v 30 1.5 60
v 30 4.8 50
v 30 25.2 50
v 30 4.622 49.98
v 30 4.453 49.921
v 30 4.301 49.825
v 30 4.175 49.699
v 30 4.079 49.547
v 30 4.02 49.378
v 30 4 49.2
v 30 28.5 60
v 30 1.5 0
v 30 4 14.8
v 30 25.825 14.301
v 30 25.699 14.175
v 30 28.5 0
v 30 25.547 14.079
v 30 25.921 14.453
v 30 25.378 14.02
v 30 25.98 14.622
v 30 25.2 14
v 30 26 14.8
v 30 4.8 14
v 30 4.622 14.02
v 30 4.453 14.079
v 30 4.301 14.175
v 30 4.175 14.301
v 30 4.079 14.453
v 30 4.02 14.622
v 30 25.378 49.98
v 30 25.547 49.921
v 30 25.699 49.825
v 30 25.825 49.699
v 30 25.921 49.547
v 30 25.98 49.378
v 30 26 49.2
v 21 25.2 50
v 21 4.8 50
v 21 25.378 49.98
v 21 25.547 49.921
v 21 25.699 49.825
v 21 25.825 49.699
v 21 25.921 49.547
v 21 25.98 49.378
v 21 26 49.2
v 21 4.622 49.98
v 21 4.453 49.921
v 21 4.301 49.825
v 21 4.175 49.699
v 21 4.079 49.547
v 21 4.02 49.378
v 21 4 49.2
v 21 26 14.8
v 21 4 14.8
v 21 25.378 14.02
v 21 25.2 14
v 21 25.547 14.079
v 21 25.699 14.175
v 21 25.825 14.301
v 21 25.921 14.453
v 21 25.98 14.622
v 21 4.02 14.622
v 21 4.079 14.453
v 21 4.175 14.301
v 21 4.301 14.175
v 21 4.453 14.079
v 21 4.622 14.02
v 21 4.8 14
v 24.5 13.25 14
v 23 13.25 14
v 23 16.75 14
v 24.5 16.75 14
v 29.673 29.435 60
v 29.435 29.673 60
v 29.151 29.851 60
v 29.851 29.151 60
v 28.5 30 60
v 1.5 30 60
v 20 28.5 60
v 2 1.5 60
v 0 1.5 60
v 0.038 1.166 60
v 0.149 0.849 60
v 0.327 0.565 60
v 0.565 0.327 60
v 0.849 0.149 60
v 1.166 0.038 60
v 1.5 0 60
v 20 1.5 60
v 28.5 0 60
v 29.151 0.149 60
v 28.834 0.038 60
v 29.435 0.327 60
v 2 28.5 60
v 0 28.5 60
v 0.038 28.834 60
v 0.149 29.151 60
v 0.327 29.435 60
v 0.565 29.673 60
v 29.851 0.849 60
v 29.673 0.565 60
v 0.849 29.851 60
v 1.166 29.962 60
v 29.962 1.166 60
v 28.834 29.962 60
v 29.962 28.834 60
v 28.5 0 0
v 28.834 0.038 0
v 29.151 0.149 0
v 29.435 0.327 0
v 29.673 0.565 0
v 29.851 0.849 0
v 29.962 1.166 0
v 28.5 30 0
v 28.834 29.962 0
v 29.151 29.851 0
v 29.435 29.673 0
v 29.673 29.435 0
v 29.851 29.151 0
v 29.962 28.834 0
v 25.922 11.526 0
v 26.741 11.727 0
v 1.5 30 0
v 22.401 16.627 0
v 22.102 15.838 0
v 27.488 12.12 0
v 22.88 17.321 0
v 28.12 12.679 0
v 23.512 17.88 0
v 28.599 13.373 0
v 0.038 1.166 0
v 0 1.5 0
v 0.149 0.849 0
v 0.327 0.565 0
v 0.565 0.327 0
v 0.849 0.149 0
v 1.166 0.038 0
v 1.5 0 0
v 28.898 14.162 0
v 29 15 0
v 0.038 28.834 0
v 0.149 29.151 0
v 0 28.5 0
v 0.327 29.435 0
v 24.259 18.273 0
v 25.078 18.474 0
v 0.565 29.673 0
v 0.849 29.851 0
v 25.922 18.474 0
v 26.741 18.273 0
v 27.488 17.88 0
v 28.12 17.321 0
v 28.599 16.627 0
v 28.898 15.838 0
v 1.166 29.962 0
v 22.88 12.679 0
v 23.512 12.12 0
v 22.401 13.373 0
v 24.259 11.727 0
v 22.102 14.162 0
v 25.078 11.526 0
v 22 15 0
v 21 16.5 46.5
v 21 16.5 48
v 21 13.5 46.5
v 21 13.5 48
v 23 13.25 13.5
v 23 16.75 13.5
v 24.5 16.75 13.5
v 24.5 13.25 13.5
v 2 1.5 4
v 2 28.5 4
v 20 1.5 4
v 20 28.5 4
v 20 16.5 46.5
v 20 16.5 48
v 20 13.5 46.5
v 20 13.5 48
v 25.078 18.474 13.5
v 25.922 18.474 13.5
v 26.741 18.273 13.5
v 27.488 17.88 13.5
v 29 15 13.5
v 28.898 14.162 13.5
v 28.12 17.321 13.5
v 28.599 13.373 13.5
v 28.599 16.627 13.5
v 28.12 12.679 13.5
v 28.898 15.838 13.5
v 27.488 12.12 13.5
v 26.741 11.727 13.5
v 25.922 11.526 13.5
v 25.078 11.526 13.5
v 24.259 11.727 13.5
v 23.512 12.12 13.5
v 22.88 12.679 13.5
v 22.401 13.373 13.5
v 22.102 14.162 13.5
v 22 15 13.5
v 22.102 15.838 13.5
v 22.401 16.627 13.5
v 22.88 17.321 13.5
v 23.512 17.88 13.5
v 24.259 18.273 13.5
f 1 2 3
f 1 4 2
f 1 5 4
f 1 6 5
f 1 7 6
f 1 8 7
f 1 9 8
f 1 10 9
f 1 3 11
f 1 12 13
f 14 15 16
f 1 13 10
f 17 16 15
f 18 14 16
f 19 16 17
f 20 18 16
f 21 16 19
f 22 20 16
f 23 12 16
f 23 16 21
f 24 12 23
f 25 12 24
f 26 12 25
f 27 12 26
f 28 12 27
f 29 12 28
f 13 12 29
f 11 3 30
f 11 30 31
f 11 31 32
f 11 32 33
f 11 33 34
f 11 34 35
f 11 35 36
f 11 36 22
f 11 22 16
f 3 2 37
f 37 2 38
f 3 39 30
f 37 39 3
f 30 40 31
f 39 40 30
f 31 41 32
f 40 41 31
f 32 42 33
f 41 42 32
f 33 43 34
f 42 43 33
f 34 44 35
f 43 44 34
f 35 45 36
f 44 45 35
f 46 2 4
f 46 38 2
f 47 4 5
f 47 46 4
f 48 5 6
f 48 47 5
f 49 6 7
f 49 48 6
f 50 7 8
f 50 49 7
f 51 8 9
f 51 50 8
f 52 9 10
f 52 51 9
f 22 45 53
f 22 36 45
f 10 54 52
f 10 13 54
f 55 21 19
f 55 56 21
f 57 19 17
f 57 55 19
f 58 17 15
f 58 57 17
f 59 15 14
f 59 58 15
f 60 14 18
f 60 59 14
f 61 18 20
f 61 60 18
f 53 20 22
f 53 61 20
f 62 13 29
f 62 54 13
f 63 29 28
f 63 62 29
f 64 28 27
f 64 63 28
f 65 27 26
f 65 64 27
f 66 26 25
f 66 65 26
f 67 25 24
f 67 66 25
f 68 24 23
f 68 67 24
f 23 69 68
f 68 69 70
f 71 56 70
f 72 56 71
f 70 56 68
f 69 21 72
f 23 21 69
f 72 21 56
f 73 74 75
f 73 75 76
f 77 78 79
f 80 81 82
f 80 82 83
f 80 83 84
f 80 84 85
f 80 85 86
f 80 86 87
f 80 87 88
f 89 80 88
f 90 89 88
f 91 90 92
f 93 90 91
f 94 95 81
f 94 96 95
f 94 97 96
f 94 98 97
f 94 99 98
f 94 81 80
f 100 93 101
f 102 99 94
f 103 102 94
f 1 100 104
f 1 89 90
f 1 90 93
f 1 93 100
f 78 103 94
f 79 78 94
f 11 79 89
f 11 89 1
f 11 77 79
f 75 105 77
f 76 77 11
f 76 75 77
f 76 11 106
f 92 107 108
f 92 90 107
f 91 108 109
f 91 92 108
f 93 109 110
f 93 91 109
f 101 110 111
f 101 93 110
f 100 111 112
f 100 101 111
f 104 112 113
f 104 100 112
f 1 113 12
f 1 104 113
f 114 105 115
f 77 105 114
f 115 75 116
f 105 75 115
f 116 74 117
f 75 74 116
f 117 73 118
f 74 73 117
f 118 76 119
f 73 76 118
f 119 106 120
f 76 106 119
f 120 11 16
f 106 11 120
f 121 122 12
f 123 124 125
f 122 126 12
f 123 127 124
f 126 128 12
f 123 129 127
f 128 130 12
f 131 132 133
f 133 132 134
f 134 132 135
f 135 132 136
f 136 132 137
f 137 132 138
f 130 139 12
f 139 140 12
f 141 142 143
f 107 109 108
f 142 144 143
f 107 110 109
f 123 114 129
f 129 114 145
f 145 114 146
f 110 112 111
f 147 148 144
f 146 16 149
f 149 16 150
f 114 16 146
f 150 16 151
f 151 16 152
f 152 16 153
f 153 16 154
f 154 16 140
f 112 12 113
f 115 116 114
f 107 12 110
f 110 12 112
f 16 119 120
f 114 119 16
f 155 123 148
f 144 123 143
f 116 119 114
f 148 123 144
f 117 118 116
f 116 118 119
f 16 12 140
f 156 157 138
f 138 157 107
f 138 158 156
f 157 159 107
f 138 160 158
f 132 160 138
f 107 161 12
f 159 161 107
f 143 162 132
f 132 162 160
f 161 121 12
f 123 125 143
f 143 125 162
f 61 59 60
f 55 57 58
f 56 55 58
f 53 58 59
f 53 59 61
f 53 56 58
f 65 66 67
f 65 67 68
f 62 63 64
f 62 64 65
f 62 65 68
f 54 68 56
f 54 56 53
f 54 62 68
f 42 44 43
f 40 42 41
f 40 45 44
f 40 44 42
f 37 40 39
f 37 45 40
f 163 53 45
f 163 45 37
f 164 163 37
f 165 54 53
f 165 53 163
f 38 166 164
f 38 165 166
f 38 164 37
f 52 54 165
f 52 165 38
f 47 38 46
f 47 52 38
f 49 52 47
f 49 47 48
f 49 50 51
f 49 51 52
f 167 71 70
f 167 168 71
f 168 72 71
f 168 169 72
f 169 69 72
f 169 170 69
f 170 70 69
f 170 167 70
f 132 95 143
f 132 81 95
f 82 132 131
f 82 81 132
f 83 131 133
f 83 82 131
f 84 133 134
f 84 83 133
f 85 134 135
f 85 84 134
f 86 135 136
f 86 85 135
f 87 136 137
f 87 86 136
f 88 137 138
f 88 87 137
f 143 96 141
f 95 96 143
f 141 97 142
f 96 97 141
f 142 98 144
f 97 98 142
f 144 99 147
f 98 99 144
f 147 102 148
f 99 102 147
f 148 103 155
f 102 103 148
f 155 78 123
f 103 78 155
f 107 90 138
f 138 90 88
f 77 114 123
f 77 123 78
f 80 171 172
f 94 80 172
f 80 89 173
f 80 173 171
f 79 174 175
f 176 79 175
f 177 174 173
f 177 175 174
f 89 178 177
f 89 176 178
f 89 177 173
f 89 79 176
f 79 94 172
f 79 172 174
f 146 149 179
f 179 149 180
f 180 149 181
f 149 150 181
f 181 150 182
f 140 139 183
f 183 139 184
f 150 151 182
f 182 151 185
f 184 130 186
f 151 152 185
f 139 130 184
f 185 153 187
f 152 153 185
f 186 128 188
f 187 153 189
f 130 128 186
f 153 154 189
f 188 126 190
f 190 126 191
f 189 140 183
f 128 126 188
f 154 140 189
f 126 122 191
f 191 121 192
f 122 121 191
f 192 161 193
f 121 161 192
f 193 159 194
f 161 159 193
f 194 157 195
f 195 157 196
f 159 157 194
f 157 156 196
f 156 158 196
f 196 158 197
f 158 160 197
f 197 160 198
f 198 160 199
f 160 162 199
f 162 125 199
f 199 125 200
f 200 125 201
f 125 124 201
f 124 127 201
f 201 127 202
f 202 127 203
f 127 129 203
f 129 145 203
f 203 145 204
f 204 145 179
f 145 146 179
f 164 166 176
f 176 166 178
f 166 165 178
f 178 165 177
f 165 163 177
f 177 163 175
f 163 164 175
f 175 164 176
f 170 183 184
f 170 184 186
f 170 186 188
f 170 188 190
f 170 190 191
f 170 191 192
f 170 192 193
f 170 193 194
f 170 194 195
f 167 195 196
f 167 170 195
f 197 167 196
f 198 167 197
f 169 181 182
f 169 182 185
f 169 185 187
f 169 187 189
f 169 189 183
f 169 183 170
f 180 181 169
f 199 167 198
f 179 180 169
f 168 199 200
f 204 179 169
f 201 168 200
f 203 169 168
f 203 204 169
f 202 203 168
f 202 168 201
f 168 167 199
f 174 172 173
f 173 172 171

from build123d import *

# Parameters (mm, degrees)
BOX_W           = 30
BOX_H           = 30
BOX_DEPTH       = 60
SKETCH_W        = 18
SKETCH_H        = 27
POCKET_DEPTH    = 56
SKETCH001_W     = 22
SKETCH001_H     = 36
POCKET001_DEPTH = 9
SKETCH003_R     = 3.5
POCKET002_DEPTH = 13.5
SKETCH004_W     = 1.5
SKETCH004_H     = 3.5
POCKET003_DEPTH = 1
SKETCH005_W     = 3
SKETCH005_H     = 1.5
POCKET004_DEPTH = 1
FILLET_R        = 1.5
FILLET001_R     = 0.8


with BuildPart() as part:
    # Box → Box (new body)
    with BuildSketch(Plane.XY):
        with Locations((15, 15)):
            Rectangle(BOX_W, BOX_H)
    extrude(amount=BOX_DEPTH)

    # Sketch (on Face6 of BaseFeature) → Pocket (cut)
    with BuildSketch(Plane.XY.offset(60)):
        with Locations((11, 15)):
            Rectangle(SKETCH_W, SKETCH_H)
    extrude(amount=-POCKET_DEPTH, mode=Mode.SUBTRACT)

    # Sketch001 (on Face6 of Pocket) → Pocket001 (cut)
    with BuildSketch(Plane.YZ.offset(30)):
        with Locations((15, 32)):
            Rectangle(SKETCH001_W, SKETCH001_H)
    extrude(amount=-POCKET001_DEPTH, mode=Mode.SUBTRACT)

    # Sketch003 (on Face5 of Pocket001) → Pocket002 (cut)
    with BuildSketch(Plane(origin=(0, 0, 0), x_dir=(1, 0, 0), z_dir=(0, 0, -1))):
        with Locations((25.5, -15)):
            Circle(SKETCH003_R)
    extrude(amount=-POCKET002_DEPTH, mode=Mode.SUBTRACT)

    # Sketch004 (on Face17 of Pocket002) → Pocket003 (cut)
    with BuildSketch(Plane(origin=(0, 0, 13.5), x_dir=(1, 0, 0), z_dir=(0, 0, -1))):
        with Locations((23.75, -15)):
            Rectangle(SKETCH004_W, SKETCH004_H)
    extrude(amount=-POCKET003_DEPTH, mode=Mode.SUBTRACT)

    # Sketch005 (on Face18 of Pocket003) → Pocket004 (cut)
    with BuildSketch(Plane.YZ.offset(21)):
        with Locations((15, 47.25)):
            Rectangle(SKETCH005_W, SKETCH005_H)
    extrude(amount=-POCKET004_DEPTH, mode=Mode.SUBTRACT)

    # Fillet
    fillet_edges = [part.edges().sort_by_distance(p)[0] for p in [
        (30, 0, 30),
        (30, 30, 30),
        (0, 0, 30),
        (0, 30, 30),
    ]]
    fillet(fillet_edges, radius=FILLET_R)

    # Fillet001
    fillet001_edges = [part.edges().sort_by_distance(p)[0] for p in [
        (25.5, 26, 50),
        (25.5, 26, 14),
        (25.5, 4, 14),
        (25.5, 4, 50),
    ]]
    fillet(fillet001_edges, radius=FILLET001_R)


solid = part.part
